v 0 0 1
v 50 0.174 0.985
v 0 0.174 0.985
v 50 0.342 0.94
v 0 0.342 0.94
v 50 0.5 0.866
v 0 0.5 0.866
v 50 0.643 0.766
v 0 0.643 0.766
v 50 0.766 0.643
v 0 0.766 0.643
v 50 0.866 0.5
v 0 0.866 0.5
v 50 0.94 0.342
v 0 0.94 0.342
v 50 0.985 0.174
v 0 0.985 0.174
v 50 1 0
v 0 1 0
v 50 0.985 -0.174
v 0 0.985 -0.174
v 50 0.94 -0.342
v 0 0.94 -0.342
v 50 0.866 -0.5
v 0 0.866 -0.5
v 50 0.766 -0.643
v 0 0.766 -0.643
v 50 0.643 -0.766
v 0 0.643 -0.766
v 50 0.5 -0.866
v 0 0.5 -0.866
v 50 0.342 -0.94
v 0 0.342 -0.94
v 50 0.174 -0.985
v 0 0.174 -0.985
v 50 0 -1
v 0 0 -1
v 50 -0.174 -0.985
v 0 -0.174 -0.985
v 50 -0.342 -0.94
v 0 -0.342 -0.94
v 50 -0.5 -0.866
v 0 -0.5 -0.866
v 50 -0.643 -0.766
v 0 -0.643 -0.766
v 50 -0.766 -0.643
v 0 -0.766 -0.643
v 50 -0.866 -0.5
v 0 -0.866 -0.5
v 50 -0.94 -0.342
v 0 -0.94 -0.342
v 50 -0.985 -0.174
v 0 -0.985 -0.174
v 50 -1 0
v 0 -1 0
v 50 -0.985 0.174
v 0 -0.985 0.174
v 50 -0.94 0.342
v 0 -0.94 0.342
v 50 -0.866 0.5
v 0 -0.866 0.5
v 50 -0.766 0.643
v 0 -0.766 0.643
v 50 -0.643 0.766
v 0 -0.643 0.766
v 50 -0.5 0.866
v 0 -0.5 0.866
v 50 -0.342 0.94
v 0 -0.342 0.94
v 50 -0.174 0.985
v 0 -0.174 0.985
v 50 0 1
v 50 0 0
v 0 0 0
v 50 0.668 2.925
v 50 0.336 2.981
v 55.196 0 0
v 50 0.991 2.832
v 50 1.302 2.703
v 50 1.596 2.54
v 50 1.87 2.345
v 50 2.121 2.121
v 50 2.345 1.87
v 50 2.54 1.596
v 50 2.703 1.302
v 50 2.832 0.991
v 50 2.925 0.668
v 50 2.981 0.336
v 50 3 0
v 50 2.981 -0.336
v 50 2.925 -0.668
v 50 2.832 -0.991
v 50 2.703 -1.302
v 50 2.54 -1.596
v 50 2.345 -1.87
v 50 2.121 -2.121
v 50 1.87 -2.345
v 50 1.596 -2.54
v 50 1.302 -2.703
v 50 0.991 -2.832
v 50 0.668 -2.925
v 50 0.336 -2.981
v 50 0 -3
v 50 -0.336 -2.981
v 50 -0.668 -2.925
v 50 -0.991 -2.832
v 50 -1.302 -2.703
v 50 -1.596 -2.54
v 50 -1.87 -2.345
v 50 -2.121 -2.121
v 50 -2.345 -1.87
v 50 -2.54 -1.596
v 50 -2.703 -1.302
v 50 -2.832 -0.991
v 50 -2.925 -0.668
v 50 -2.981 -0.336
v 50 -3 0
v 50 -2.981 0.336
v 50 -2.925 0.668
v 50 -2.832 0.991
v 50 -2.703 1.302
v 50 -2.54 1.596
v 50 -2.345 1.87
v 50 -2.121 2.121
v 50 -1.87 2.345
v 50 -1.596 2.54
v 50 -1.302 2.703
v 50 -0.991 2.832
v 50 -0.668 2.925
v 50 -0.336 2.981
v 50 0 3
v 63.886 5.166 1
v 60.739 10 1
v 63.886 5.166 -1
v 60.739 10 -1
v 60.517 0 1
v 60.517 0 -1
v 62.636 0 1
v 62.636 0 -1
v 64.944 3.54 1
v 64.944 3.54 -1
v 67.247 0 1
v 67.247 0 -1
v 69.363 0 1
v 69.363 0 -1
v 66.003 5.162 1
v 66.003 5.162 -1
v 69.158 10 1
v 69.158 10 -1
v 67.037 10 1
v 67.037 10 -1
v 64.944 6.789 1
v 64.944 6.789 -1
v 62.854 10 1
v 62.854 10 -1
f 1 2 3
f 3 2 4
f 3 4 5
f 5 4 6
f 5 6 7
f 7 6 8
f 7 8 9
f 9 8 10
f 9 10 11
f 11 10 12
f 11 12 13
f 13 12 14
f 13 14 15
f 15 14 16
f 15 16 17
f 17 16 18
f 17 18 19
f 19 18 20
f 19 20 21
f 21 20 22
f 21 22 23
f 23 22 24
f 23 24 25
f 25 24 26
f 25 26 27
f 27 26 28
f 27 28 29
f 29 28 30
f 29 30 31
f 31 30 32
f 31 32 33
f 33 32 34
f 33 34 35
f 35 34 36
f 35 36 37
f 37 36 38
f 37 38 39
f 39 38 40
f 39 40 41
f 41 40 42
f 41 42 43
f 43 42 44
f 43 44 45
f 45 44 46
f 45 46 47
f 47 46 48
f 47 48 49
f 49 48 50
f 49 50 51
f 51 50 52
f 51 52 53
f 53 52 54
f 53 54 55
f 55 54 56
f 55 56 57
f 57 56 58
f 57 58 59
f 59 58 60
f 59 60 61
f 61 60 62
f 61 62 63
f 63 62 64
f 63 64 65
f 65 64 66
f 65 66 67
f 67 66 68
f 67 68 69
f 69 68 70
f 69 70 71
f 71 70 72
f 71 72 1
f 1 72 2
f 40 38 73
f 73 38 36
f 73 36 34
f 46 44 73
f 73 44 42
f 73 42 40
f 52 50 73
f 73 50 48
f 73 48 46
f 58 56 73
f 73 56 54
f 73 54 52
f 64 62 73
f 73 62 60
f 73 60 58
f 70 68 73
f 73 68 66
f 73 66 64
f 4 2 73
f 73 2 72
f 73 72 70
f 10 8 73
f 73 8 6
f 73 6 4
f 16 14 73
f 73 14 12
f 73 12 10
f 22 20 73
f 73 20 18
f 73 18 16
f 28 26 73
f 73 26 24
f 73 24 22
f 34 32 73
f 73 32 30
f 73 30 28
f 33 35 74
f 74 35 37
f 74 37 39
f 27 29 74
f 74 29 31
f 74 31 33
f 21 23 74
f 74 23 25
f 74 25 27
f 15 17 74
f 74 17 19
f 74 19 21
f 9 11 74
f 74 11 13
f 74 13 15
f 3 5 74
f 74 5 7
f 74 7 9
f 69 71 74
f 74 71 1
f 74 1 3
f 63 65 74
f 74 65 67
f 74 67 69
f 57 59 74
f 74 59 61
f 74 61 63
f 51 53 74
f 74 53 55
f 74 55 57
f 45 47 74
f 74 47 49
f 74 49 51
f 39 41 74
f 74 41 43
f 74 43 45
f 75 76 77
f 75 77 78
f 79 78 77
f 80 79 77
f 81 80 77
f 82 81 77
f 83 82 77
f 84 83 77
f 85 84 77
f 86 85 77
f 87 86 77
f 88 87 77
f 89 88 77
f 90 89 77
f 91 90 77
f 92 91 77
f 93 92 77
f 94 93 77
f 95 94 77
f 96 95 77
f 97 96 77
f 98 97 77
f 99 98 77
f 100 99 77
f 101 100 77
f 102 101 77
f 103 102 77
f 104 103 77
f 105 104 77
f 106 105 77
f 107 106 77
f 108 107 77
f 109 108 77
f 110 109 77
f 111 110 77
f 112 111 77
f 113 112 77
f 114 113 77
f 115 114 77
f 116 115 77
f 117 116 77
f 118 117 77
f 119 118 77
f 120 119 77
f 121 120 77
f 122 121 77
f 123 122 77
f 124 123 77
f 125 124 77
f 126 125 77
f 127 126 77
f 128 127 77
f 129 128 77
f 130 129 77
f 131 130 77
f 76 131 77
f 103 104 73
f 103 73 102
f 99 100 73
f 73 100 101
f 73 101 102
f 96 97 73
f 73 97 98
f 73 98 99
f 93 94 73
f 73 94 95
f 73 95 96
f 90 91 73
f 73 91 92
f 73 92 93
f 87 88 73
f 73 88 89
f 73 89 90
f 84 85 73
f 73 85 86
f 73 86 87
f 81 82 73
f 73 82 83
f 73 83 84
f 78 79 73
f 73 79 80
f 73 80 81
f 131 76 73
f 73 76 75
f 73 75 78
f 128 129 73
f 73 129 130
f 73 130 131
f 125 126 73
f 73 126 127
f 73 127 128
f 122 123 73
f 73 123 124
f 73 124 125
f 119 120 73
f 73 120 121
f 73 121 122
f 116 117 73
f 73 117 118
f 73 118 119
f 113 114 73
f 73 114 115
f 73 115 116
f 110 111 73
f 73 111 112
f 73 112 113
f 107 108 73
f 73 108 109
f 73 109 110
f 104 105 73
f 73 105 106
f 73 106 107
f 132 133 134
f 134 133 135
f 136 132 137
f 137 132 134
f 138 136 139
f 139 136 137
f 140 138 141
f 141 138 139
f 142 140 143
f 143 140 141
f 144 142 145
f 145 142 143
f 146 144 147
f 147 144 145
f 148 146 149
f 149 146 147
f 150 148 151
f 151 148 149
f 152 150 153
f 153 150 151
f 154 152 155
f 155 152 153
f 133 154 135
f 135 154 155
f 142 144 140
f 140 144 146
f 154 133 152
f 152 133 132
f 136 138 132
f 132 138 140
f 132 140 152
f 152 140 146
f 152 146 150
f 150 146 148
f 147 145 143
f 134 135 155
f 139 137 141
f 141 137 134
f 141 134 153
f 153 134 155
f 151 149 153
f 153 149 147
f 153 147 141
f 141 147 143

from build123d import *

# Parameters (mm, degrees)
SKETCH1_R           = 1
BOSS_EXTRUDE1_DEPTH = 50
BOSS_EXTRUDE2_DEPTH = 1


with BuildPart() as part:
    # Sketch1 → Boss-Extrude1 (new body)
    with BuildSketch(Plane(origin=(0, 0, 0), x_dir=(0, 0, -1), z_dir=(1, 0, 0))):
        Circle(SKETCH1_R)
    extrude(amount=BOSS_EXTRUDE1_DEPTH)


with BuildPart() as body_2:
    # Sketch4 → Revolve1 (revolve)
    with BuildSketch(Plane(origin=(0, 0, 0), x_dir=(1, 0, 0), z_dir=(0, 1, 0)), mode=Mode.PRIVATE) as revolve1_sk:
        Polygon((50, 0), (50, 3), (55.196152423, 0), align=None)
    revolve(revolve1_sk.sketch.rotate(Axis((50, 0, 0), (1, 0, 0)), 180), axis=Axis((50, 0, 0), (1, 0, 0)))


with BuildPart() as body_3:
    # Sketch5 → Boss-Extrude2 (new, symmetric)
    with BuildSketch(Plane.XY):
        Polygon((60.739021012, 10), (62.854405628, 10), (64.943748577, 6.788862179), (67.037097936, 10), (69.158492166, 10), (66.003444089, 5.162259615), (69.362819089, 0), (67.247434474, 0), (64.943748577, 3.539663462), (62.636056269, 0), (60.516665243, 0), (63.886056269, 5.166266026), align=None)
    extrude(amount=BOSS_EXTRUDE2_DEPTH, both=True)


solid = Compound([part.part, body_2.part, body_3.part])
